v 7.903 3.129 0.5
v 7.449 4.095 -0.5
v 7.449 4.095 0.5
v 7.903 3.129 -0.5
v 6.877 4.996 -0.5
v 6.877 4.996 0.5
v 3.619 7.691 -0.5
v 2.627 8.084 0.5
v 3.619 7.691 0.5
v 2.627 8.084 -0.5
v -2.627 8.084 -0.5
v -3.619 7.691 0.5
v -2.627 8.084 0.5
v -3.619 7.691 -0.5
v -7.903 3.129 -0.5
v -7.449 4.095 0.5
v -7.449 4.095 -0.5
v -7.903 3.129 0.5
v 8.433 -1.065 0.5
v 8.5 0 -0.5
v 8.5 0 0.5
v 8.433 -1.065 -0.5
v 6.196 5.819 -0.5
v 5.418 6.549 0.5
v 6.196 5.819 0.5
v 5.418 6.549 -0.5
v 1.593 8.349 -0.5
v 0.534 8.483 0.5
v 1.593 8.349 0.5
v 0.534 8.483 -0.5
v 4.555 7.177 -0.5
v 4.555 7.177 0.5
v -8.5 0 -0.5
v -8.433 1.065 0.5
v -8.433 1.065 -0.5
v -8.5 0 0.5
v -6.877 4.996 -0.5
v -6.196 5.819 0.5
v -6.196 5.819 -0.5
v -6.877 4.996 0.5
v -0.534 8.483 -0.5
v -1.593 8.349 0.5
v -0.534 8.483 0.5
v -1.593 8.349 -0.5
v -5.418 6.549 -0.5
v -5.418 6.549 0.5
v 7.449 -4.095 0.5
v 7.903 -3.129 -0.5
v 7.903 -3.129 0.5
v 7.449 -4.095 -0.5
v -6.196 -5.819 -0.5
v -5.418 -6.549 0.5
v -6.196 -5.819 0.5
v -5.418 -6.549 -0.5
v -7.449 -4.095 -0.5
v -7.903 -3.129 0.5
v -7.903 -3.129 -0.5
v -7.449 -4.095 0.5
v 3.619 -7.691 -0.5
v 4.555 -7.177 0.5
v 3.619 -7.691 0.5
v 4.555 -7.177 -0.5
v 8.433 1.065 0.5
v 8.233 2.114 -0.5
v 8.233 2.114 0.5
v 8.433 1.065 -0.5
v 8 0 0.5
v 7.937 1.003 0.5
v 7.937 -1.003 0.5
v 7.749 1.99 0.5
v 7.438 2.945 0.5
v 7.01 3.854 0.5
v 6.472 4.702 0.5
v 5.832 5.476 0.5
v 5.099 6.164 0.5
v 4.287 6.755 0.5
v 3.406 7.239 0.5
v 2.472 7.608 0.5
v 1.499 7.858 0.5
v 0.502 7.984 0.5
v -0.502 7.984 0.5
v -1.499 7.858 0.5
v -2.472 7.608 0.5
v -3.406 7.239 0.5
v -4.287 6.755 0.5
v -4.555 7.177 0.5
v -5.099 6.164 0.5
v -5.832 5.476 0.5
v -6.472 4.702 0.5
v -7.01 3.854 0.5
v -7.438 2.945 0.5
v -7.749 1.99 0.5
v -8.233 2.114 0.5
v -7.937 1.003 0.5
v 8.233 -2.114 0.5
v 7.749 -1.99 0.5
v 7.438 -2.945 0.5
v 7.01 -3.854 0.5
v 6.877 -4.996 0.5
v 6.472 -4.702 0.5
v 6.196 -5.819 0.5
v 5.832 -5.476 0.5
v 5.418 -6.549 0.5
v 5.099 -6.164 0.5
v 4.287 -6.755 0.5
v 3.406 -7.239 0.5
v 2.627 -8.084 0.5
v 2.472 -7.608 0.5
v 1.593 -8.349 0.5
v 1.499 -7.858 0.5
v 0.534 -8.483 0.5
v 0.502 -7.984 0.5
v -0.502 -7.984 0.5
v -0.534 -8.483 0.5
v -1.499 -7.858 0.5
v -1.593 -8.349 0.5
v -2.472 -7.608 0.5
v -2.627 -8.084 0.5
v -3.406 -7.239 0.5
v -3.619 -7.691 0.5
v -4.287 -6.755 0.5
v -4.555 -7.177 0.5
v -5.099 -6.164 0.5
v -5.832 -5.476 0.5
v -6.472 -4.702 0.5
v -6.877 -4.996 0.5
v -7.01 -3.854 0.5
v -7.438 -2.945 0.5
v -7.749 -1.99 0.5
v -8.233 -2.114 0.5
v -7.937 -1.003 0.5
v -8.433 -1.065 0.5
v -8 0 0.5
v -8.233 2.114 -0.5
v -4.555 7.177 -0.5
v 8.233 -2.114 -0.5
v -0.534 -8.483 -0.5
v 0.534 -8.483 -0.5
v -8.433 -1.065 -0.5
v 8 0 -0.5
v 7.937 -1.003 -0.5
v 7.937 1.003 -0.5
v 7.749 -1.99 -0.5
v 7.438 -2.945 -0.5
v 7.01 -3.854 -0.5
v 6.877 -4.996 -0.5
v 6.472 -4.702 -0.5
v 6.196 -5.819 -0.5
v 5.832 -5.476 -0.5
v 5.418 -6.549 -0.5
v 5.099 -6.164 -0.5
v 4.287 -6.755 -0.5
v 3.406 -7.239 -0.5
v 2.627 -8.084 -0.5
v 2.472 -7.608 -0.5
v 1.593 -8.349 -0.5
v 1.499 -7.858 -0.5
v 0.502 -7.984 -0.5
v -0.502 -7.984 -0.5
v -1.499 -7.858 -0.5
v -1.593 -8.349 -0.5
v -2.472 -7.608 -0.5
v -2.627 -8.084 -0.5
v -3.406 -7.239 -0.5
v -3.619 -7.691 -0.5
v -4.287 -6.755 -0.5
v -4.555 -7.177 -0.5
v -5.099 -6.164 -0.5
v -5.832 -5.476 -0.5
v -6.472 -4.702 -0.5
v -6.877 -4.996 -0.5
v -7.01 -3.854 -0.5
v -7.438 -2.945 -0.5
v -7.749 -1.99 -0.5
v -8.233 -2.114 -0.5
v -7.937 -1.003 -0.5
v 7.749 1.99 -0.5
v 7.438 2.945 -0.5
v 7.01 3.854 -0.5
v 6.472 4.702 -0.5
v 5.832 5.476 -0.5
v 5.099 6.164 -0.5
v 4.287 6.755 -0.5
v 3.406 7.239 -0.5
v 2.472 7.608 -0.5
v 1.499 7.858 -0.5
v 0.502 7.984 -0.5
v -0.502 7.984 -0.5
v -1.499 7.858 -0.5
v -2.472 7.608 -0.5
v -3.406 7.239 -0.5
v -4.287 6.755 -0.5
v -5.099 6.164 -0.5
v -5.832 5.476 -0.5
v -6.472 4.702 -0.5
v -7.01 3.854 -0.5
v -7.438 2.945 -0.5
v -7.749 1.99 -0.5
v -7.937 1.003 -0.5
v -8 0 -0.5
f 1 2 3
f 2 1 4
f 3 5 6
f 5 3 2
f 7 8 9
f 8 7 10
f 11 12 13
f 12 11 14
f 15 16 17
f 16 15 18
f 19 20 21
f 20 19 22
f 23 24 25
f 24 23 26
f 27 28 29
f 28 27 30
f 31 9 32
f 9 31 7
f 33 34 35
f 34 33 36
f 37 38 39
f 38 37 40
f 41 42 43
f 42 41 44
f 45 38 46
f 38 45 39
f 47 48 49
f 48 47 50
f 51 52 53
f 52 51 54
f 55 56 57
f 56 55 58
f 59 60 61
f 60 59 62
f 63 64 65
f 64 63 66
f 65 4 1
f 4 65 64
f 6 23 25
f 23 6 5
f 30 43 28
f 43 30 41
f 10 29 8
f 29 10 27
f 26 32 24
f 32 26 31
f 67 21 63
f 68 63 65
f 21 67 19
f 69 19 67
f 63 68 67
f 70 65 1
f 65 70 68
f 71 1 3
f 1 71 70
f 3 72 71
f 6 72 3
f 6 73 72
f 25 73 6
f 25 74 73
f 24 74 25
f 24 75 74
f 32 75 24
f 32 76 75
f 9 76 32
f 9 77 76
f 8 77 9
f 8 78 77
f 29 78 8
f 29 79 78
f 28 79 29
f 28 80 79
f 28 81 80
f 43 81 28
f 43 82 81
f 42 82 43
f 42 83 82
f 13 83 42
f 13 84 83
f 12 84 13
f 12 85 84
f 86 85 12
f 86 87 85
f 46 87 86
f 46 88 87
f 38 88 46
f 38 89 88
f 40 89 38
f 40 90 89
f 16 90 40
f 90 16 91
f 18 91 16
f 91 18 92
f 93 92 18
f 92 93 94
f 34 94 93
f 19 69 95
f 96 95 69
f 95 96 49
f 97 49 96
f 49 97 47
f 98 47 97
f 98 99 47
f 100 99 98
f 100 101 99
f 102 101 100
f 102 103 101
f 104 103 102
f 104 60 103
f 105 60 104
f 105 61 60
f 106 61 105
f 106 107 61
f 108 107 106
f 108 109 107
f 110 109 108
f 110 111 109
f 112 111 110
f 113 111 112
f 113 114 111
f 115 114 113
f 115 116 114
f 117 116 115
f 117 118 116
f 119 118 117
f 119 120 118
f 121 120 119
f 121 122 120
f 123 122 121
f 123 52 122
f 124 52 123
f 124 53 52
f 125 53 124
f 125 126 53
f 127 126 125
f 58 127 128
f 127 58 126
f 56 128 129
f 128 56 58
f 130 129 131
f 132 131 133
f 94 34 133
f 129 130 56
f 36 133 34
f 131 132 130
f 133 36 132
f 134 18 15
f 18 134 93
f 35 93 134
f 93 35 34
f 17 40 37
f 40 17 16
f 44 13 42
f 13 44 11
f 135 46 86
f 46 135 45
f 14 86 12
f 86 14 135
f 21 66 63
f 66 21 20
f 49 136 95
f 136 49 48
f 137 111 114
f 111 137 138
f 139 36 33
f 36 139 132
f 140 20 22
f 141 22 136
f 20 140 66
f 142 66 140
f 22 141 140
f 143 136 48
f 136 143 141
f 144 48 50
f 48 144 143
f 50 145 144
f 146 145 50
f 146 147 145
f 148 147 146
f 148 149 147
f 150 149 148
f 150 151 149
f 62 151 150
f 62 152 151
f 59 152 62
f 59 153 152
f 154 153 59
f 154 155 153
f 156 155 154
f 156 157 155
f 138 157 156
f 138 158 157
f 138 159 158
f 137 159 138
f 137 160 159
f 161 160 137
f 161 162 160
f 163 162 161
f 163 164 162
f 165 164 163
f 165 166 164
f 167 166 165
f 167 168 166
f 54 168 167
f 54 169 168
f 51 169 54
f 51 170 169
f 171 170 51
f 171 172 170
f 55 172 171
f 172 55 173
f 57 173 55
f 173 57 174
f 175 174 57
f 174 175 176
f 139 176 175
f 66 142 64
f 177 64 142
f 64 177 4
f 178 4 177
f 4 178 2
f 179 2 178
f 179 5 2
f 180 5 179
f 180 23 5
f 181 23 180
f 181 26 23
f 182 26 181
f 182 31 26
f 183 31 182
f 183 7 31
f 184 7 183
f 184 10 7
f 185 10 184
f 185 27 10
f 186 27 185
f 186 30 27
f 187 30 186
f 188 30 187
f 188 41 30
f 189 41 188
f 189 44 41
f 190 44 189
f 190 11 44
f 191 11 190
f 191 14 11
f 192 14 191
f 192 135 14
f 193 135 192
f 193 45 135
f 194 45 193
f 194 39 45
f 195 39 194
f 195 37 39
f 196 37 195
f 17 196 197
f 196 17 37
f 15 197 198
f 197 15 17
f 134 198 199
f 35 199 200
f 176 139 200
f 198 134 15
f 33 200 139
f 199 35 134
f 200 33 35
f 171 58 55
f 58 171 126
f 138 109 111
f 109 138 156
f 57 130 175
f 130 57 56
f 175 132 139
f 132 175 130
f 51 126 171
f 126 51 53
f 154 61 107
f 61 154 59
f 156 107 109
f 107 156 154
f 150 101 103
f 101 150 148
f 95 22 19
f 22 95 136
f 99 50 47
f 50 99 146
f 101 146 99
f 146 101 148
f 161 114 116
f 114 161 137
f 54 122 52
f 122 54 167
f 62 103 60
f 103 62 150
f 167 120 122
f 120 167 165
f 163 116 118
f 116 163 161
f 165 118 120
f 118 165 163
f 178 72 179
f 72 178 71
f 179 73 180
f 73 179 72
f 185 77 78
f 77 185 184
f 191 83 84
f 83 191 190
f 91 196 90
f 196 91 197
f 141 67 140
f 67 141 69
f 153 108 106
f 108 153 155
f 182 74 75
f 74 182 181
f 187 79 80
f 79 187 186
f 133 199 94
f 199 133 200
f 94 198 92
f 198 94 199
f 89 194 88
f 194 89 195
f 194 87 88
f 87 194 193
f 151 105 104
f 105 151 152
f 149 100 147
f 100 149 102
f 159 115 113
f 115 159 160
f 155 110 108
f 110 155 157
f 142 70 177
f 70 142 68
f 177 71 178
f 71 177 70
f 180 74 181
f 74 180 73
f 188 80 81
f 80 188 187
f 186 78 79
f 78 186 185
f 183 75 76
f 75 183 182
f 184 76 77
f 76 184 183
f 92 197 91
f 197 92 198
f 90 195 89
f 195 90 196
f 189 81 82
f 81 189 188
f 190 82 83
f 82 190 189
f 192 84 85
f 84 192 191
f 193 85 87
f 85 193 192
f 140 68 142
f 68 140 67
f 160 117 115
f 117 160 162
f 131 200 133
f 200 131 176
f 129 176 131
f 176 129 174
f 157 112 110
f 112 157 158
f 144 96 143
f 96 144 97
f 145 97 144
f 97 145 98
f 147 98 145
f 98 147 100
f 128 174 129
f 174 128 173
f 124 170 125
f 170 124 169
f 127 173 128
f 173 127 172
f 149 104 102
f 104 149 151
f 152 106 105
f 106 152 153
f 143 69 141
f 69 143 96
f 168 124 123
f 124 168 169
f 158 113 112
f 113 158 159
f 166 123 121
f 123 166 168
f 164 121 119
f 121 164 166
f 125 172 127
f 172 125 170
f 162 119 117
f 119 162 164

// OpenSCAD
$fn = 50;


difference() {
	union() {
		translate(v = [0, 0, -0.5000000000]) {
			cylinder(h = 1, r = 8.5000000000);
		}
	}
	union() {
		translate(v = [0, 0, -100.0000000000]) {
			cylinder(h = 200, r = 8);
		}
	}
}
